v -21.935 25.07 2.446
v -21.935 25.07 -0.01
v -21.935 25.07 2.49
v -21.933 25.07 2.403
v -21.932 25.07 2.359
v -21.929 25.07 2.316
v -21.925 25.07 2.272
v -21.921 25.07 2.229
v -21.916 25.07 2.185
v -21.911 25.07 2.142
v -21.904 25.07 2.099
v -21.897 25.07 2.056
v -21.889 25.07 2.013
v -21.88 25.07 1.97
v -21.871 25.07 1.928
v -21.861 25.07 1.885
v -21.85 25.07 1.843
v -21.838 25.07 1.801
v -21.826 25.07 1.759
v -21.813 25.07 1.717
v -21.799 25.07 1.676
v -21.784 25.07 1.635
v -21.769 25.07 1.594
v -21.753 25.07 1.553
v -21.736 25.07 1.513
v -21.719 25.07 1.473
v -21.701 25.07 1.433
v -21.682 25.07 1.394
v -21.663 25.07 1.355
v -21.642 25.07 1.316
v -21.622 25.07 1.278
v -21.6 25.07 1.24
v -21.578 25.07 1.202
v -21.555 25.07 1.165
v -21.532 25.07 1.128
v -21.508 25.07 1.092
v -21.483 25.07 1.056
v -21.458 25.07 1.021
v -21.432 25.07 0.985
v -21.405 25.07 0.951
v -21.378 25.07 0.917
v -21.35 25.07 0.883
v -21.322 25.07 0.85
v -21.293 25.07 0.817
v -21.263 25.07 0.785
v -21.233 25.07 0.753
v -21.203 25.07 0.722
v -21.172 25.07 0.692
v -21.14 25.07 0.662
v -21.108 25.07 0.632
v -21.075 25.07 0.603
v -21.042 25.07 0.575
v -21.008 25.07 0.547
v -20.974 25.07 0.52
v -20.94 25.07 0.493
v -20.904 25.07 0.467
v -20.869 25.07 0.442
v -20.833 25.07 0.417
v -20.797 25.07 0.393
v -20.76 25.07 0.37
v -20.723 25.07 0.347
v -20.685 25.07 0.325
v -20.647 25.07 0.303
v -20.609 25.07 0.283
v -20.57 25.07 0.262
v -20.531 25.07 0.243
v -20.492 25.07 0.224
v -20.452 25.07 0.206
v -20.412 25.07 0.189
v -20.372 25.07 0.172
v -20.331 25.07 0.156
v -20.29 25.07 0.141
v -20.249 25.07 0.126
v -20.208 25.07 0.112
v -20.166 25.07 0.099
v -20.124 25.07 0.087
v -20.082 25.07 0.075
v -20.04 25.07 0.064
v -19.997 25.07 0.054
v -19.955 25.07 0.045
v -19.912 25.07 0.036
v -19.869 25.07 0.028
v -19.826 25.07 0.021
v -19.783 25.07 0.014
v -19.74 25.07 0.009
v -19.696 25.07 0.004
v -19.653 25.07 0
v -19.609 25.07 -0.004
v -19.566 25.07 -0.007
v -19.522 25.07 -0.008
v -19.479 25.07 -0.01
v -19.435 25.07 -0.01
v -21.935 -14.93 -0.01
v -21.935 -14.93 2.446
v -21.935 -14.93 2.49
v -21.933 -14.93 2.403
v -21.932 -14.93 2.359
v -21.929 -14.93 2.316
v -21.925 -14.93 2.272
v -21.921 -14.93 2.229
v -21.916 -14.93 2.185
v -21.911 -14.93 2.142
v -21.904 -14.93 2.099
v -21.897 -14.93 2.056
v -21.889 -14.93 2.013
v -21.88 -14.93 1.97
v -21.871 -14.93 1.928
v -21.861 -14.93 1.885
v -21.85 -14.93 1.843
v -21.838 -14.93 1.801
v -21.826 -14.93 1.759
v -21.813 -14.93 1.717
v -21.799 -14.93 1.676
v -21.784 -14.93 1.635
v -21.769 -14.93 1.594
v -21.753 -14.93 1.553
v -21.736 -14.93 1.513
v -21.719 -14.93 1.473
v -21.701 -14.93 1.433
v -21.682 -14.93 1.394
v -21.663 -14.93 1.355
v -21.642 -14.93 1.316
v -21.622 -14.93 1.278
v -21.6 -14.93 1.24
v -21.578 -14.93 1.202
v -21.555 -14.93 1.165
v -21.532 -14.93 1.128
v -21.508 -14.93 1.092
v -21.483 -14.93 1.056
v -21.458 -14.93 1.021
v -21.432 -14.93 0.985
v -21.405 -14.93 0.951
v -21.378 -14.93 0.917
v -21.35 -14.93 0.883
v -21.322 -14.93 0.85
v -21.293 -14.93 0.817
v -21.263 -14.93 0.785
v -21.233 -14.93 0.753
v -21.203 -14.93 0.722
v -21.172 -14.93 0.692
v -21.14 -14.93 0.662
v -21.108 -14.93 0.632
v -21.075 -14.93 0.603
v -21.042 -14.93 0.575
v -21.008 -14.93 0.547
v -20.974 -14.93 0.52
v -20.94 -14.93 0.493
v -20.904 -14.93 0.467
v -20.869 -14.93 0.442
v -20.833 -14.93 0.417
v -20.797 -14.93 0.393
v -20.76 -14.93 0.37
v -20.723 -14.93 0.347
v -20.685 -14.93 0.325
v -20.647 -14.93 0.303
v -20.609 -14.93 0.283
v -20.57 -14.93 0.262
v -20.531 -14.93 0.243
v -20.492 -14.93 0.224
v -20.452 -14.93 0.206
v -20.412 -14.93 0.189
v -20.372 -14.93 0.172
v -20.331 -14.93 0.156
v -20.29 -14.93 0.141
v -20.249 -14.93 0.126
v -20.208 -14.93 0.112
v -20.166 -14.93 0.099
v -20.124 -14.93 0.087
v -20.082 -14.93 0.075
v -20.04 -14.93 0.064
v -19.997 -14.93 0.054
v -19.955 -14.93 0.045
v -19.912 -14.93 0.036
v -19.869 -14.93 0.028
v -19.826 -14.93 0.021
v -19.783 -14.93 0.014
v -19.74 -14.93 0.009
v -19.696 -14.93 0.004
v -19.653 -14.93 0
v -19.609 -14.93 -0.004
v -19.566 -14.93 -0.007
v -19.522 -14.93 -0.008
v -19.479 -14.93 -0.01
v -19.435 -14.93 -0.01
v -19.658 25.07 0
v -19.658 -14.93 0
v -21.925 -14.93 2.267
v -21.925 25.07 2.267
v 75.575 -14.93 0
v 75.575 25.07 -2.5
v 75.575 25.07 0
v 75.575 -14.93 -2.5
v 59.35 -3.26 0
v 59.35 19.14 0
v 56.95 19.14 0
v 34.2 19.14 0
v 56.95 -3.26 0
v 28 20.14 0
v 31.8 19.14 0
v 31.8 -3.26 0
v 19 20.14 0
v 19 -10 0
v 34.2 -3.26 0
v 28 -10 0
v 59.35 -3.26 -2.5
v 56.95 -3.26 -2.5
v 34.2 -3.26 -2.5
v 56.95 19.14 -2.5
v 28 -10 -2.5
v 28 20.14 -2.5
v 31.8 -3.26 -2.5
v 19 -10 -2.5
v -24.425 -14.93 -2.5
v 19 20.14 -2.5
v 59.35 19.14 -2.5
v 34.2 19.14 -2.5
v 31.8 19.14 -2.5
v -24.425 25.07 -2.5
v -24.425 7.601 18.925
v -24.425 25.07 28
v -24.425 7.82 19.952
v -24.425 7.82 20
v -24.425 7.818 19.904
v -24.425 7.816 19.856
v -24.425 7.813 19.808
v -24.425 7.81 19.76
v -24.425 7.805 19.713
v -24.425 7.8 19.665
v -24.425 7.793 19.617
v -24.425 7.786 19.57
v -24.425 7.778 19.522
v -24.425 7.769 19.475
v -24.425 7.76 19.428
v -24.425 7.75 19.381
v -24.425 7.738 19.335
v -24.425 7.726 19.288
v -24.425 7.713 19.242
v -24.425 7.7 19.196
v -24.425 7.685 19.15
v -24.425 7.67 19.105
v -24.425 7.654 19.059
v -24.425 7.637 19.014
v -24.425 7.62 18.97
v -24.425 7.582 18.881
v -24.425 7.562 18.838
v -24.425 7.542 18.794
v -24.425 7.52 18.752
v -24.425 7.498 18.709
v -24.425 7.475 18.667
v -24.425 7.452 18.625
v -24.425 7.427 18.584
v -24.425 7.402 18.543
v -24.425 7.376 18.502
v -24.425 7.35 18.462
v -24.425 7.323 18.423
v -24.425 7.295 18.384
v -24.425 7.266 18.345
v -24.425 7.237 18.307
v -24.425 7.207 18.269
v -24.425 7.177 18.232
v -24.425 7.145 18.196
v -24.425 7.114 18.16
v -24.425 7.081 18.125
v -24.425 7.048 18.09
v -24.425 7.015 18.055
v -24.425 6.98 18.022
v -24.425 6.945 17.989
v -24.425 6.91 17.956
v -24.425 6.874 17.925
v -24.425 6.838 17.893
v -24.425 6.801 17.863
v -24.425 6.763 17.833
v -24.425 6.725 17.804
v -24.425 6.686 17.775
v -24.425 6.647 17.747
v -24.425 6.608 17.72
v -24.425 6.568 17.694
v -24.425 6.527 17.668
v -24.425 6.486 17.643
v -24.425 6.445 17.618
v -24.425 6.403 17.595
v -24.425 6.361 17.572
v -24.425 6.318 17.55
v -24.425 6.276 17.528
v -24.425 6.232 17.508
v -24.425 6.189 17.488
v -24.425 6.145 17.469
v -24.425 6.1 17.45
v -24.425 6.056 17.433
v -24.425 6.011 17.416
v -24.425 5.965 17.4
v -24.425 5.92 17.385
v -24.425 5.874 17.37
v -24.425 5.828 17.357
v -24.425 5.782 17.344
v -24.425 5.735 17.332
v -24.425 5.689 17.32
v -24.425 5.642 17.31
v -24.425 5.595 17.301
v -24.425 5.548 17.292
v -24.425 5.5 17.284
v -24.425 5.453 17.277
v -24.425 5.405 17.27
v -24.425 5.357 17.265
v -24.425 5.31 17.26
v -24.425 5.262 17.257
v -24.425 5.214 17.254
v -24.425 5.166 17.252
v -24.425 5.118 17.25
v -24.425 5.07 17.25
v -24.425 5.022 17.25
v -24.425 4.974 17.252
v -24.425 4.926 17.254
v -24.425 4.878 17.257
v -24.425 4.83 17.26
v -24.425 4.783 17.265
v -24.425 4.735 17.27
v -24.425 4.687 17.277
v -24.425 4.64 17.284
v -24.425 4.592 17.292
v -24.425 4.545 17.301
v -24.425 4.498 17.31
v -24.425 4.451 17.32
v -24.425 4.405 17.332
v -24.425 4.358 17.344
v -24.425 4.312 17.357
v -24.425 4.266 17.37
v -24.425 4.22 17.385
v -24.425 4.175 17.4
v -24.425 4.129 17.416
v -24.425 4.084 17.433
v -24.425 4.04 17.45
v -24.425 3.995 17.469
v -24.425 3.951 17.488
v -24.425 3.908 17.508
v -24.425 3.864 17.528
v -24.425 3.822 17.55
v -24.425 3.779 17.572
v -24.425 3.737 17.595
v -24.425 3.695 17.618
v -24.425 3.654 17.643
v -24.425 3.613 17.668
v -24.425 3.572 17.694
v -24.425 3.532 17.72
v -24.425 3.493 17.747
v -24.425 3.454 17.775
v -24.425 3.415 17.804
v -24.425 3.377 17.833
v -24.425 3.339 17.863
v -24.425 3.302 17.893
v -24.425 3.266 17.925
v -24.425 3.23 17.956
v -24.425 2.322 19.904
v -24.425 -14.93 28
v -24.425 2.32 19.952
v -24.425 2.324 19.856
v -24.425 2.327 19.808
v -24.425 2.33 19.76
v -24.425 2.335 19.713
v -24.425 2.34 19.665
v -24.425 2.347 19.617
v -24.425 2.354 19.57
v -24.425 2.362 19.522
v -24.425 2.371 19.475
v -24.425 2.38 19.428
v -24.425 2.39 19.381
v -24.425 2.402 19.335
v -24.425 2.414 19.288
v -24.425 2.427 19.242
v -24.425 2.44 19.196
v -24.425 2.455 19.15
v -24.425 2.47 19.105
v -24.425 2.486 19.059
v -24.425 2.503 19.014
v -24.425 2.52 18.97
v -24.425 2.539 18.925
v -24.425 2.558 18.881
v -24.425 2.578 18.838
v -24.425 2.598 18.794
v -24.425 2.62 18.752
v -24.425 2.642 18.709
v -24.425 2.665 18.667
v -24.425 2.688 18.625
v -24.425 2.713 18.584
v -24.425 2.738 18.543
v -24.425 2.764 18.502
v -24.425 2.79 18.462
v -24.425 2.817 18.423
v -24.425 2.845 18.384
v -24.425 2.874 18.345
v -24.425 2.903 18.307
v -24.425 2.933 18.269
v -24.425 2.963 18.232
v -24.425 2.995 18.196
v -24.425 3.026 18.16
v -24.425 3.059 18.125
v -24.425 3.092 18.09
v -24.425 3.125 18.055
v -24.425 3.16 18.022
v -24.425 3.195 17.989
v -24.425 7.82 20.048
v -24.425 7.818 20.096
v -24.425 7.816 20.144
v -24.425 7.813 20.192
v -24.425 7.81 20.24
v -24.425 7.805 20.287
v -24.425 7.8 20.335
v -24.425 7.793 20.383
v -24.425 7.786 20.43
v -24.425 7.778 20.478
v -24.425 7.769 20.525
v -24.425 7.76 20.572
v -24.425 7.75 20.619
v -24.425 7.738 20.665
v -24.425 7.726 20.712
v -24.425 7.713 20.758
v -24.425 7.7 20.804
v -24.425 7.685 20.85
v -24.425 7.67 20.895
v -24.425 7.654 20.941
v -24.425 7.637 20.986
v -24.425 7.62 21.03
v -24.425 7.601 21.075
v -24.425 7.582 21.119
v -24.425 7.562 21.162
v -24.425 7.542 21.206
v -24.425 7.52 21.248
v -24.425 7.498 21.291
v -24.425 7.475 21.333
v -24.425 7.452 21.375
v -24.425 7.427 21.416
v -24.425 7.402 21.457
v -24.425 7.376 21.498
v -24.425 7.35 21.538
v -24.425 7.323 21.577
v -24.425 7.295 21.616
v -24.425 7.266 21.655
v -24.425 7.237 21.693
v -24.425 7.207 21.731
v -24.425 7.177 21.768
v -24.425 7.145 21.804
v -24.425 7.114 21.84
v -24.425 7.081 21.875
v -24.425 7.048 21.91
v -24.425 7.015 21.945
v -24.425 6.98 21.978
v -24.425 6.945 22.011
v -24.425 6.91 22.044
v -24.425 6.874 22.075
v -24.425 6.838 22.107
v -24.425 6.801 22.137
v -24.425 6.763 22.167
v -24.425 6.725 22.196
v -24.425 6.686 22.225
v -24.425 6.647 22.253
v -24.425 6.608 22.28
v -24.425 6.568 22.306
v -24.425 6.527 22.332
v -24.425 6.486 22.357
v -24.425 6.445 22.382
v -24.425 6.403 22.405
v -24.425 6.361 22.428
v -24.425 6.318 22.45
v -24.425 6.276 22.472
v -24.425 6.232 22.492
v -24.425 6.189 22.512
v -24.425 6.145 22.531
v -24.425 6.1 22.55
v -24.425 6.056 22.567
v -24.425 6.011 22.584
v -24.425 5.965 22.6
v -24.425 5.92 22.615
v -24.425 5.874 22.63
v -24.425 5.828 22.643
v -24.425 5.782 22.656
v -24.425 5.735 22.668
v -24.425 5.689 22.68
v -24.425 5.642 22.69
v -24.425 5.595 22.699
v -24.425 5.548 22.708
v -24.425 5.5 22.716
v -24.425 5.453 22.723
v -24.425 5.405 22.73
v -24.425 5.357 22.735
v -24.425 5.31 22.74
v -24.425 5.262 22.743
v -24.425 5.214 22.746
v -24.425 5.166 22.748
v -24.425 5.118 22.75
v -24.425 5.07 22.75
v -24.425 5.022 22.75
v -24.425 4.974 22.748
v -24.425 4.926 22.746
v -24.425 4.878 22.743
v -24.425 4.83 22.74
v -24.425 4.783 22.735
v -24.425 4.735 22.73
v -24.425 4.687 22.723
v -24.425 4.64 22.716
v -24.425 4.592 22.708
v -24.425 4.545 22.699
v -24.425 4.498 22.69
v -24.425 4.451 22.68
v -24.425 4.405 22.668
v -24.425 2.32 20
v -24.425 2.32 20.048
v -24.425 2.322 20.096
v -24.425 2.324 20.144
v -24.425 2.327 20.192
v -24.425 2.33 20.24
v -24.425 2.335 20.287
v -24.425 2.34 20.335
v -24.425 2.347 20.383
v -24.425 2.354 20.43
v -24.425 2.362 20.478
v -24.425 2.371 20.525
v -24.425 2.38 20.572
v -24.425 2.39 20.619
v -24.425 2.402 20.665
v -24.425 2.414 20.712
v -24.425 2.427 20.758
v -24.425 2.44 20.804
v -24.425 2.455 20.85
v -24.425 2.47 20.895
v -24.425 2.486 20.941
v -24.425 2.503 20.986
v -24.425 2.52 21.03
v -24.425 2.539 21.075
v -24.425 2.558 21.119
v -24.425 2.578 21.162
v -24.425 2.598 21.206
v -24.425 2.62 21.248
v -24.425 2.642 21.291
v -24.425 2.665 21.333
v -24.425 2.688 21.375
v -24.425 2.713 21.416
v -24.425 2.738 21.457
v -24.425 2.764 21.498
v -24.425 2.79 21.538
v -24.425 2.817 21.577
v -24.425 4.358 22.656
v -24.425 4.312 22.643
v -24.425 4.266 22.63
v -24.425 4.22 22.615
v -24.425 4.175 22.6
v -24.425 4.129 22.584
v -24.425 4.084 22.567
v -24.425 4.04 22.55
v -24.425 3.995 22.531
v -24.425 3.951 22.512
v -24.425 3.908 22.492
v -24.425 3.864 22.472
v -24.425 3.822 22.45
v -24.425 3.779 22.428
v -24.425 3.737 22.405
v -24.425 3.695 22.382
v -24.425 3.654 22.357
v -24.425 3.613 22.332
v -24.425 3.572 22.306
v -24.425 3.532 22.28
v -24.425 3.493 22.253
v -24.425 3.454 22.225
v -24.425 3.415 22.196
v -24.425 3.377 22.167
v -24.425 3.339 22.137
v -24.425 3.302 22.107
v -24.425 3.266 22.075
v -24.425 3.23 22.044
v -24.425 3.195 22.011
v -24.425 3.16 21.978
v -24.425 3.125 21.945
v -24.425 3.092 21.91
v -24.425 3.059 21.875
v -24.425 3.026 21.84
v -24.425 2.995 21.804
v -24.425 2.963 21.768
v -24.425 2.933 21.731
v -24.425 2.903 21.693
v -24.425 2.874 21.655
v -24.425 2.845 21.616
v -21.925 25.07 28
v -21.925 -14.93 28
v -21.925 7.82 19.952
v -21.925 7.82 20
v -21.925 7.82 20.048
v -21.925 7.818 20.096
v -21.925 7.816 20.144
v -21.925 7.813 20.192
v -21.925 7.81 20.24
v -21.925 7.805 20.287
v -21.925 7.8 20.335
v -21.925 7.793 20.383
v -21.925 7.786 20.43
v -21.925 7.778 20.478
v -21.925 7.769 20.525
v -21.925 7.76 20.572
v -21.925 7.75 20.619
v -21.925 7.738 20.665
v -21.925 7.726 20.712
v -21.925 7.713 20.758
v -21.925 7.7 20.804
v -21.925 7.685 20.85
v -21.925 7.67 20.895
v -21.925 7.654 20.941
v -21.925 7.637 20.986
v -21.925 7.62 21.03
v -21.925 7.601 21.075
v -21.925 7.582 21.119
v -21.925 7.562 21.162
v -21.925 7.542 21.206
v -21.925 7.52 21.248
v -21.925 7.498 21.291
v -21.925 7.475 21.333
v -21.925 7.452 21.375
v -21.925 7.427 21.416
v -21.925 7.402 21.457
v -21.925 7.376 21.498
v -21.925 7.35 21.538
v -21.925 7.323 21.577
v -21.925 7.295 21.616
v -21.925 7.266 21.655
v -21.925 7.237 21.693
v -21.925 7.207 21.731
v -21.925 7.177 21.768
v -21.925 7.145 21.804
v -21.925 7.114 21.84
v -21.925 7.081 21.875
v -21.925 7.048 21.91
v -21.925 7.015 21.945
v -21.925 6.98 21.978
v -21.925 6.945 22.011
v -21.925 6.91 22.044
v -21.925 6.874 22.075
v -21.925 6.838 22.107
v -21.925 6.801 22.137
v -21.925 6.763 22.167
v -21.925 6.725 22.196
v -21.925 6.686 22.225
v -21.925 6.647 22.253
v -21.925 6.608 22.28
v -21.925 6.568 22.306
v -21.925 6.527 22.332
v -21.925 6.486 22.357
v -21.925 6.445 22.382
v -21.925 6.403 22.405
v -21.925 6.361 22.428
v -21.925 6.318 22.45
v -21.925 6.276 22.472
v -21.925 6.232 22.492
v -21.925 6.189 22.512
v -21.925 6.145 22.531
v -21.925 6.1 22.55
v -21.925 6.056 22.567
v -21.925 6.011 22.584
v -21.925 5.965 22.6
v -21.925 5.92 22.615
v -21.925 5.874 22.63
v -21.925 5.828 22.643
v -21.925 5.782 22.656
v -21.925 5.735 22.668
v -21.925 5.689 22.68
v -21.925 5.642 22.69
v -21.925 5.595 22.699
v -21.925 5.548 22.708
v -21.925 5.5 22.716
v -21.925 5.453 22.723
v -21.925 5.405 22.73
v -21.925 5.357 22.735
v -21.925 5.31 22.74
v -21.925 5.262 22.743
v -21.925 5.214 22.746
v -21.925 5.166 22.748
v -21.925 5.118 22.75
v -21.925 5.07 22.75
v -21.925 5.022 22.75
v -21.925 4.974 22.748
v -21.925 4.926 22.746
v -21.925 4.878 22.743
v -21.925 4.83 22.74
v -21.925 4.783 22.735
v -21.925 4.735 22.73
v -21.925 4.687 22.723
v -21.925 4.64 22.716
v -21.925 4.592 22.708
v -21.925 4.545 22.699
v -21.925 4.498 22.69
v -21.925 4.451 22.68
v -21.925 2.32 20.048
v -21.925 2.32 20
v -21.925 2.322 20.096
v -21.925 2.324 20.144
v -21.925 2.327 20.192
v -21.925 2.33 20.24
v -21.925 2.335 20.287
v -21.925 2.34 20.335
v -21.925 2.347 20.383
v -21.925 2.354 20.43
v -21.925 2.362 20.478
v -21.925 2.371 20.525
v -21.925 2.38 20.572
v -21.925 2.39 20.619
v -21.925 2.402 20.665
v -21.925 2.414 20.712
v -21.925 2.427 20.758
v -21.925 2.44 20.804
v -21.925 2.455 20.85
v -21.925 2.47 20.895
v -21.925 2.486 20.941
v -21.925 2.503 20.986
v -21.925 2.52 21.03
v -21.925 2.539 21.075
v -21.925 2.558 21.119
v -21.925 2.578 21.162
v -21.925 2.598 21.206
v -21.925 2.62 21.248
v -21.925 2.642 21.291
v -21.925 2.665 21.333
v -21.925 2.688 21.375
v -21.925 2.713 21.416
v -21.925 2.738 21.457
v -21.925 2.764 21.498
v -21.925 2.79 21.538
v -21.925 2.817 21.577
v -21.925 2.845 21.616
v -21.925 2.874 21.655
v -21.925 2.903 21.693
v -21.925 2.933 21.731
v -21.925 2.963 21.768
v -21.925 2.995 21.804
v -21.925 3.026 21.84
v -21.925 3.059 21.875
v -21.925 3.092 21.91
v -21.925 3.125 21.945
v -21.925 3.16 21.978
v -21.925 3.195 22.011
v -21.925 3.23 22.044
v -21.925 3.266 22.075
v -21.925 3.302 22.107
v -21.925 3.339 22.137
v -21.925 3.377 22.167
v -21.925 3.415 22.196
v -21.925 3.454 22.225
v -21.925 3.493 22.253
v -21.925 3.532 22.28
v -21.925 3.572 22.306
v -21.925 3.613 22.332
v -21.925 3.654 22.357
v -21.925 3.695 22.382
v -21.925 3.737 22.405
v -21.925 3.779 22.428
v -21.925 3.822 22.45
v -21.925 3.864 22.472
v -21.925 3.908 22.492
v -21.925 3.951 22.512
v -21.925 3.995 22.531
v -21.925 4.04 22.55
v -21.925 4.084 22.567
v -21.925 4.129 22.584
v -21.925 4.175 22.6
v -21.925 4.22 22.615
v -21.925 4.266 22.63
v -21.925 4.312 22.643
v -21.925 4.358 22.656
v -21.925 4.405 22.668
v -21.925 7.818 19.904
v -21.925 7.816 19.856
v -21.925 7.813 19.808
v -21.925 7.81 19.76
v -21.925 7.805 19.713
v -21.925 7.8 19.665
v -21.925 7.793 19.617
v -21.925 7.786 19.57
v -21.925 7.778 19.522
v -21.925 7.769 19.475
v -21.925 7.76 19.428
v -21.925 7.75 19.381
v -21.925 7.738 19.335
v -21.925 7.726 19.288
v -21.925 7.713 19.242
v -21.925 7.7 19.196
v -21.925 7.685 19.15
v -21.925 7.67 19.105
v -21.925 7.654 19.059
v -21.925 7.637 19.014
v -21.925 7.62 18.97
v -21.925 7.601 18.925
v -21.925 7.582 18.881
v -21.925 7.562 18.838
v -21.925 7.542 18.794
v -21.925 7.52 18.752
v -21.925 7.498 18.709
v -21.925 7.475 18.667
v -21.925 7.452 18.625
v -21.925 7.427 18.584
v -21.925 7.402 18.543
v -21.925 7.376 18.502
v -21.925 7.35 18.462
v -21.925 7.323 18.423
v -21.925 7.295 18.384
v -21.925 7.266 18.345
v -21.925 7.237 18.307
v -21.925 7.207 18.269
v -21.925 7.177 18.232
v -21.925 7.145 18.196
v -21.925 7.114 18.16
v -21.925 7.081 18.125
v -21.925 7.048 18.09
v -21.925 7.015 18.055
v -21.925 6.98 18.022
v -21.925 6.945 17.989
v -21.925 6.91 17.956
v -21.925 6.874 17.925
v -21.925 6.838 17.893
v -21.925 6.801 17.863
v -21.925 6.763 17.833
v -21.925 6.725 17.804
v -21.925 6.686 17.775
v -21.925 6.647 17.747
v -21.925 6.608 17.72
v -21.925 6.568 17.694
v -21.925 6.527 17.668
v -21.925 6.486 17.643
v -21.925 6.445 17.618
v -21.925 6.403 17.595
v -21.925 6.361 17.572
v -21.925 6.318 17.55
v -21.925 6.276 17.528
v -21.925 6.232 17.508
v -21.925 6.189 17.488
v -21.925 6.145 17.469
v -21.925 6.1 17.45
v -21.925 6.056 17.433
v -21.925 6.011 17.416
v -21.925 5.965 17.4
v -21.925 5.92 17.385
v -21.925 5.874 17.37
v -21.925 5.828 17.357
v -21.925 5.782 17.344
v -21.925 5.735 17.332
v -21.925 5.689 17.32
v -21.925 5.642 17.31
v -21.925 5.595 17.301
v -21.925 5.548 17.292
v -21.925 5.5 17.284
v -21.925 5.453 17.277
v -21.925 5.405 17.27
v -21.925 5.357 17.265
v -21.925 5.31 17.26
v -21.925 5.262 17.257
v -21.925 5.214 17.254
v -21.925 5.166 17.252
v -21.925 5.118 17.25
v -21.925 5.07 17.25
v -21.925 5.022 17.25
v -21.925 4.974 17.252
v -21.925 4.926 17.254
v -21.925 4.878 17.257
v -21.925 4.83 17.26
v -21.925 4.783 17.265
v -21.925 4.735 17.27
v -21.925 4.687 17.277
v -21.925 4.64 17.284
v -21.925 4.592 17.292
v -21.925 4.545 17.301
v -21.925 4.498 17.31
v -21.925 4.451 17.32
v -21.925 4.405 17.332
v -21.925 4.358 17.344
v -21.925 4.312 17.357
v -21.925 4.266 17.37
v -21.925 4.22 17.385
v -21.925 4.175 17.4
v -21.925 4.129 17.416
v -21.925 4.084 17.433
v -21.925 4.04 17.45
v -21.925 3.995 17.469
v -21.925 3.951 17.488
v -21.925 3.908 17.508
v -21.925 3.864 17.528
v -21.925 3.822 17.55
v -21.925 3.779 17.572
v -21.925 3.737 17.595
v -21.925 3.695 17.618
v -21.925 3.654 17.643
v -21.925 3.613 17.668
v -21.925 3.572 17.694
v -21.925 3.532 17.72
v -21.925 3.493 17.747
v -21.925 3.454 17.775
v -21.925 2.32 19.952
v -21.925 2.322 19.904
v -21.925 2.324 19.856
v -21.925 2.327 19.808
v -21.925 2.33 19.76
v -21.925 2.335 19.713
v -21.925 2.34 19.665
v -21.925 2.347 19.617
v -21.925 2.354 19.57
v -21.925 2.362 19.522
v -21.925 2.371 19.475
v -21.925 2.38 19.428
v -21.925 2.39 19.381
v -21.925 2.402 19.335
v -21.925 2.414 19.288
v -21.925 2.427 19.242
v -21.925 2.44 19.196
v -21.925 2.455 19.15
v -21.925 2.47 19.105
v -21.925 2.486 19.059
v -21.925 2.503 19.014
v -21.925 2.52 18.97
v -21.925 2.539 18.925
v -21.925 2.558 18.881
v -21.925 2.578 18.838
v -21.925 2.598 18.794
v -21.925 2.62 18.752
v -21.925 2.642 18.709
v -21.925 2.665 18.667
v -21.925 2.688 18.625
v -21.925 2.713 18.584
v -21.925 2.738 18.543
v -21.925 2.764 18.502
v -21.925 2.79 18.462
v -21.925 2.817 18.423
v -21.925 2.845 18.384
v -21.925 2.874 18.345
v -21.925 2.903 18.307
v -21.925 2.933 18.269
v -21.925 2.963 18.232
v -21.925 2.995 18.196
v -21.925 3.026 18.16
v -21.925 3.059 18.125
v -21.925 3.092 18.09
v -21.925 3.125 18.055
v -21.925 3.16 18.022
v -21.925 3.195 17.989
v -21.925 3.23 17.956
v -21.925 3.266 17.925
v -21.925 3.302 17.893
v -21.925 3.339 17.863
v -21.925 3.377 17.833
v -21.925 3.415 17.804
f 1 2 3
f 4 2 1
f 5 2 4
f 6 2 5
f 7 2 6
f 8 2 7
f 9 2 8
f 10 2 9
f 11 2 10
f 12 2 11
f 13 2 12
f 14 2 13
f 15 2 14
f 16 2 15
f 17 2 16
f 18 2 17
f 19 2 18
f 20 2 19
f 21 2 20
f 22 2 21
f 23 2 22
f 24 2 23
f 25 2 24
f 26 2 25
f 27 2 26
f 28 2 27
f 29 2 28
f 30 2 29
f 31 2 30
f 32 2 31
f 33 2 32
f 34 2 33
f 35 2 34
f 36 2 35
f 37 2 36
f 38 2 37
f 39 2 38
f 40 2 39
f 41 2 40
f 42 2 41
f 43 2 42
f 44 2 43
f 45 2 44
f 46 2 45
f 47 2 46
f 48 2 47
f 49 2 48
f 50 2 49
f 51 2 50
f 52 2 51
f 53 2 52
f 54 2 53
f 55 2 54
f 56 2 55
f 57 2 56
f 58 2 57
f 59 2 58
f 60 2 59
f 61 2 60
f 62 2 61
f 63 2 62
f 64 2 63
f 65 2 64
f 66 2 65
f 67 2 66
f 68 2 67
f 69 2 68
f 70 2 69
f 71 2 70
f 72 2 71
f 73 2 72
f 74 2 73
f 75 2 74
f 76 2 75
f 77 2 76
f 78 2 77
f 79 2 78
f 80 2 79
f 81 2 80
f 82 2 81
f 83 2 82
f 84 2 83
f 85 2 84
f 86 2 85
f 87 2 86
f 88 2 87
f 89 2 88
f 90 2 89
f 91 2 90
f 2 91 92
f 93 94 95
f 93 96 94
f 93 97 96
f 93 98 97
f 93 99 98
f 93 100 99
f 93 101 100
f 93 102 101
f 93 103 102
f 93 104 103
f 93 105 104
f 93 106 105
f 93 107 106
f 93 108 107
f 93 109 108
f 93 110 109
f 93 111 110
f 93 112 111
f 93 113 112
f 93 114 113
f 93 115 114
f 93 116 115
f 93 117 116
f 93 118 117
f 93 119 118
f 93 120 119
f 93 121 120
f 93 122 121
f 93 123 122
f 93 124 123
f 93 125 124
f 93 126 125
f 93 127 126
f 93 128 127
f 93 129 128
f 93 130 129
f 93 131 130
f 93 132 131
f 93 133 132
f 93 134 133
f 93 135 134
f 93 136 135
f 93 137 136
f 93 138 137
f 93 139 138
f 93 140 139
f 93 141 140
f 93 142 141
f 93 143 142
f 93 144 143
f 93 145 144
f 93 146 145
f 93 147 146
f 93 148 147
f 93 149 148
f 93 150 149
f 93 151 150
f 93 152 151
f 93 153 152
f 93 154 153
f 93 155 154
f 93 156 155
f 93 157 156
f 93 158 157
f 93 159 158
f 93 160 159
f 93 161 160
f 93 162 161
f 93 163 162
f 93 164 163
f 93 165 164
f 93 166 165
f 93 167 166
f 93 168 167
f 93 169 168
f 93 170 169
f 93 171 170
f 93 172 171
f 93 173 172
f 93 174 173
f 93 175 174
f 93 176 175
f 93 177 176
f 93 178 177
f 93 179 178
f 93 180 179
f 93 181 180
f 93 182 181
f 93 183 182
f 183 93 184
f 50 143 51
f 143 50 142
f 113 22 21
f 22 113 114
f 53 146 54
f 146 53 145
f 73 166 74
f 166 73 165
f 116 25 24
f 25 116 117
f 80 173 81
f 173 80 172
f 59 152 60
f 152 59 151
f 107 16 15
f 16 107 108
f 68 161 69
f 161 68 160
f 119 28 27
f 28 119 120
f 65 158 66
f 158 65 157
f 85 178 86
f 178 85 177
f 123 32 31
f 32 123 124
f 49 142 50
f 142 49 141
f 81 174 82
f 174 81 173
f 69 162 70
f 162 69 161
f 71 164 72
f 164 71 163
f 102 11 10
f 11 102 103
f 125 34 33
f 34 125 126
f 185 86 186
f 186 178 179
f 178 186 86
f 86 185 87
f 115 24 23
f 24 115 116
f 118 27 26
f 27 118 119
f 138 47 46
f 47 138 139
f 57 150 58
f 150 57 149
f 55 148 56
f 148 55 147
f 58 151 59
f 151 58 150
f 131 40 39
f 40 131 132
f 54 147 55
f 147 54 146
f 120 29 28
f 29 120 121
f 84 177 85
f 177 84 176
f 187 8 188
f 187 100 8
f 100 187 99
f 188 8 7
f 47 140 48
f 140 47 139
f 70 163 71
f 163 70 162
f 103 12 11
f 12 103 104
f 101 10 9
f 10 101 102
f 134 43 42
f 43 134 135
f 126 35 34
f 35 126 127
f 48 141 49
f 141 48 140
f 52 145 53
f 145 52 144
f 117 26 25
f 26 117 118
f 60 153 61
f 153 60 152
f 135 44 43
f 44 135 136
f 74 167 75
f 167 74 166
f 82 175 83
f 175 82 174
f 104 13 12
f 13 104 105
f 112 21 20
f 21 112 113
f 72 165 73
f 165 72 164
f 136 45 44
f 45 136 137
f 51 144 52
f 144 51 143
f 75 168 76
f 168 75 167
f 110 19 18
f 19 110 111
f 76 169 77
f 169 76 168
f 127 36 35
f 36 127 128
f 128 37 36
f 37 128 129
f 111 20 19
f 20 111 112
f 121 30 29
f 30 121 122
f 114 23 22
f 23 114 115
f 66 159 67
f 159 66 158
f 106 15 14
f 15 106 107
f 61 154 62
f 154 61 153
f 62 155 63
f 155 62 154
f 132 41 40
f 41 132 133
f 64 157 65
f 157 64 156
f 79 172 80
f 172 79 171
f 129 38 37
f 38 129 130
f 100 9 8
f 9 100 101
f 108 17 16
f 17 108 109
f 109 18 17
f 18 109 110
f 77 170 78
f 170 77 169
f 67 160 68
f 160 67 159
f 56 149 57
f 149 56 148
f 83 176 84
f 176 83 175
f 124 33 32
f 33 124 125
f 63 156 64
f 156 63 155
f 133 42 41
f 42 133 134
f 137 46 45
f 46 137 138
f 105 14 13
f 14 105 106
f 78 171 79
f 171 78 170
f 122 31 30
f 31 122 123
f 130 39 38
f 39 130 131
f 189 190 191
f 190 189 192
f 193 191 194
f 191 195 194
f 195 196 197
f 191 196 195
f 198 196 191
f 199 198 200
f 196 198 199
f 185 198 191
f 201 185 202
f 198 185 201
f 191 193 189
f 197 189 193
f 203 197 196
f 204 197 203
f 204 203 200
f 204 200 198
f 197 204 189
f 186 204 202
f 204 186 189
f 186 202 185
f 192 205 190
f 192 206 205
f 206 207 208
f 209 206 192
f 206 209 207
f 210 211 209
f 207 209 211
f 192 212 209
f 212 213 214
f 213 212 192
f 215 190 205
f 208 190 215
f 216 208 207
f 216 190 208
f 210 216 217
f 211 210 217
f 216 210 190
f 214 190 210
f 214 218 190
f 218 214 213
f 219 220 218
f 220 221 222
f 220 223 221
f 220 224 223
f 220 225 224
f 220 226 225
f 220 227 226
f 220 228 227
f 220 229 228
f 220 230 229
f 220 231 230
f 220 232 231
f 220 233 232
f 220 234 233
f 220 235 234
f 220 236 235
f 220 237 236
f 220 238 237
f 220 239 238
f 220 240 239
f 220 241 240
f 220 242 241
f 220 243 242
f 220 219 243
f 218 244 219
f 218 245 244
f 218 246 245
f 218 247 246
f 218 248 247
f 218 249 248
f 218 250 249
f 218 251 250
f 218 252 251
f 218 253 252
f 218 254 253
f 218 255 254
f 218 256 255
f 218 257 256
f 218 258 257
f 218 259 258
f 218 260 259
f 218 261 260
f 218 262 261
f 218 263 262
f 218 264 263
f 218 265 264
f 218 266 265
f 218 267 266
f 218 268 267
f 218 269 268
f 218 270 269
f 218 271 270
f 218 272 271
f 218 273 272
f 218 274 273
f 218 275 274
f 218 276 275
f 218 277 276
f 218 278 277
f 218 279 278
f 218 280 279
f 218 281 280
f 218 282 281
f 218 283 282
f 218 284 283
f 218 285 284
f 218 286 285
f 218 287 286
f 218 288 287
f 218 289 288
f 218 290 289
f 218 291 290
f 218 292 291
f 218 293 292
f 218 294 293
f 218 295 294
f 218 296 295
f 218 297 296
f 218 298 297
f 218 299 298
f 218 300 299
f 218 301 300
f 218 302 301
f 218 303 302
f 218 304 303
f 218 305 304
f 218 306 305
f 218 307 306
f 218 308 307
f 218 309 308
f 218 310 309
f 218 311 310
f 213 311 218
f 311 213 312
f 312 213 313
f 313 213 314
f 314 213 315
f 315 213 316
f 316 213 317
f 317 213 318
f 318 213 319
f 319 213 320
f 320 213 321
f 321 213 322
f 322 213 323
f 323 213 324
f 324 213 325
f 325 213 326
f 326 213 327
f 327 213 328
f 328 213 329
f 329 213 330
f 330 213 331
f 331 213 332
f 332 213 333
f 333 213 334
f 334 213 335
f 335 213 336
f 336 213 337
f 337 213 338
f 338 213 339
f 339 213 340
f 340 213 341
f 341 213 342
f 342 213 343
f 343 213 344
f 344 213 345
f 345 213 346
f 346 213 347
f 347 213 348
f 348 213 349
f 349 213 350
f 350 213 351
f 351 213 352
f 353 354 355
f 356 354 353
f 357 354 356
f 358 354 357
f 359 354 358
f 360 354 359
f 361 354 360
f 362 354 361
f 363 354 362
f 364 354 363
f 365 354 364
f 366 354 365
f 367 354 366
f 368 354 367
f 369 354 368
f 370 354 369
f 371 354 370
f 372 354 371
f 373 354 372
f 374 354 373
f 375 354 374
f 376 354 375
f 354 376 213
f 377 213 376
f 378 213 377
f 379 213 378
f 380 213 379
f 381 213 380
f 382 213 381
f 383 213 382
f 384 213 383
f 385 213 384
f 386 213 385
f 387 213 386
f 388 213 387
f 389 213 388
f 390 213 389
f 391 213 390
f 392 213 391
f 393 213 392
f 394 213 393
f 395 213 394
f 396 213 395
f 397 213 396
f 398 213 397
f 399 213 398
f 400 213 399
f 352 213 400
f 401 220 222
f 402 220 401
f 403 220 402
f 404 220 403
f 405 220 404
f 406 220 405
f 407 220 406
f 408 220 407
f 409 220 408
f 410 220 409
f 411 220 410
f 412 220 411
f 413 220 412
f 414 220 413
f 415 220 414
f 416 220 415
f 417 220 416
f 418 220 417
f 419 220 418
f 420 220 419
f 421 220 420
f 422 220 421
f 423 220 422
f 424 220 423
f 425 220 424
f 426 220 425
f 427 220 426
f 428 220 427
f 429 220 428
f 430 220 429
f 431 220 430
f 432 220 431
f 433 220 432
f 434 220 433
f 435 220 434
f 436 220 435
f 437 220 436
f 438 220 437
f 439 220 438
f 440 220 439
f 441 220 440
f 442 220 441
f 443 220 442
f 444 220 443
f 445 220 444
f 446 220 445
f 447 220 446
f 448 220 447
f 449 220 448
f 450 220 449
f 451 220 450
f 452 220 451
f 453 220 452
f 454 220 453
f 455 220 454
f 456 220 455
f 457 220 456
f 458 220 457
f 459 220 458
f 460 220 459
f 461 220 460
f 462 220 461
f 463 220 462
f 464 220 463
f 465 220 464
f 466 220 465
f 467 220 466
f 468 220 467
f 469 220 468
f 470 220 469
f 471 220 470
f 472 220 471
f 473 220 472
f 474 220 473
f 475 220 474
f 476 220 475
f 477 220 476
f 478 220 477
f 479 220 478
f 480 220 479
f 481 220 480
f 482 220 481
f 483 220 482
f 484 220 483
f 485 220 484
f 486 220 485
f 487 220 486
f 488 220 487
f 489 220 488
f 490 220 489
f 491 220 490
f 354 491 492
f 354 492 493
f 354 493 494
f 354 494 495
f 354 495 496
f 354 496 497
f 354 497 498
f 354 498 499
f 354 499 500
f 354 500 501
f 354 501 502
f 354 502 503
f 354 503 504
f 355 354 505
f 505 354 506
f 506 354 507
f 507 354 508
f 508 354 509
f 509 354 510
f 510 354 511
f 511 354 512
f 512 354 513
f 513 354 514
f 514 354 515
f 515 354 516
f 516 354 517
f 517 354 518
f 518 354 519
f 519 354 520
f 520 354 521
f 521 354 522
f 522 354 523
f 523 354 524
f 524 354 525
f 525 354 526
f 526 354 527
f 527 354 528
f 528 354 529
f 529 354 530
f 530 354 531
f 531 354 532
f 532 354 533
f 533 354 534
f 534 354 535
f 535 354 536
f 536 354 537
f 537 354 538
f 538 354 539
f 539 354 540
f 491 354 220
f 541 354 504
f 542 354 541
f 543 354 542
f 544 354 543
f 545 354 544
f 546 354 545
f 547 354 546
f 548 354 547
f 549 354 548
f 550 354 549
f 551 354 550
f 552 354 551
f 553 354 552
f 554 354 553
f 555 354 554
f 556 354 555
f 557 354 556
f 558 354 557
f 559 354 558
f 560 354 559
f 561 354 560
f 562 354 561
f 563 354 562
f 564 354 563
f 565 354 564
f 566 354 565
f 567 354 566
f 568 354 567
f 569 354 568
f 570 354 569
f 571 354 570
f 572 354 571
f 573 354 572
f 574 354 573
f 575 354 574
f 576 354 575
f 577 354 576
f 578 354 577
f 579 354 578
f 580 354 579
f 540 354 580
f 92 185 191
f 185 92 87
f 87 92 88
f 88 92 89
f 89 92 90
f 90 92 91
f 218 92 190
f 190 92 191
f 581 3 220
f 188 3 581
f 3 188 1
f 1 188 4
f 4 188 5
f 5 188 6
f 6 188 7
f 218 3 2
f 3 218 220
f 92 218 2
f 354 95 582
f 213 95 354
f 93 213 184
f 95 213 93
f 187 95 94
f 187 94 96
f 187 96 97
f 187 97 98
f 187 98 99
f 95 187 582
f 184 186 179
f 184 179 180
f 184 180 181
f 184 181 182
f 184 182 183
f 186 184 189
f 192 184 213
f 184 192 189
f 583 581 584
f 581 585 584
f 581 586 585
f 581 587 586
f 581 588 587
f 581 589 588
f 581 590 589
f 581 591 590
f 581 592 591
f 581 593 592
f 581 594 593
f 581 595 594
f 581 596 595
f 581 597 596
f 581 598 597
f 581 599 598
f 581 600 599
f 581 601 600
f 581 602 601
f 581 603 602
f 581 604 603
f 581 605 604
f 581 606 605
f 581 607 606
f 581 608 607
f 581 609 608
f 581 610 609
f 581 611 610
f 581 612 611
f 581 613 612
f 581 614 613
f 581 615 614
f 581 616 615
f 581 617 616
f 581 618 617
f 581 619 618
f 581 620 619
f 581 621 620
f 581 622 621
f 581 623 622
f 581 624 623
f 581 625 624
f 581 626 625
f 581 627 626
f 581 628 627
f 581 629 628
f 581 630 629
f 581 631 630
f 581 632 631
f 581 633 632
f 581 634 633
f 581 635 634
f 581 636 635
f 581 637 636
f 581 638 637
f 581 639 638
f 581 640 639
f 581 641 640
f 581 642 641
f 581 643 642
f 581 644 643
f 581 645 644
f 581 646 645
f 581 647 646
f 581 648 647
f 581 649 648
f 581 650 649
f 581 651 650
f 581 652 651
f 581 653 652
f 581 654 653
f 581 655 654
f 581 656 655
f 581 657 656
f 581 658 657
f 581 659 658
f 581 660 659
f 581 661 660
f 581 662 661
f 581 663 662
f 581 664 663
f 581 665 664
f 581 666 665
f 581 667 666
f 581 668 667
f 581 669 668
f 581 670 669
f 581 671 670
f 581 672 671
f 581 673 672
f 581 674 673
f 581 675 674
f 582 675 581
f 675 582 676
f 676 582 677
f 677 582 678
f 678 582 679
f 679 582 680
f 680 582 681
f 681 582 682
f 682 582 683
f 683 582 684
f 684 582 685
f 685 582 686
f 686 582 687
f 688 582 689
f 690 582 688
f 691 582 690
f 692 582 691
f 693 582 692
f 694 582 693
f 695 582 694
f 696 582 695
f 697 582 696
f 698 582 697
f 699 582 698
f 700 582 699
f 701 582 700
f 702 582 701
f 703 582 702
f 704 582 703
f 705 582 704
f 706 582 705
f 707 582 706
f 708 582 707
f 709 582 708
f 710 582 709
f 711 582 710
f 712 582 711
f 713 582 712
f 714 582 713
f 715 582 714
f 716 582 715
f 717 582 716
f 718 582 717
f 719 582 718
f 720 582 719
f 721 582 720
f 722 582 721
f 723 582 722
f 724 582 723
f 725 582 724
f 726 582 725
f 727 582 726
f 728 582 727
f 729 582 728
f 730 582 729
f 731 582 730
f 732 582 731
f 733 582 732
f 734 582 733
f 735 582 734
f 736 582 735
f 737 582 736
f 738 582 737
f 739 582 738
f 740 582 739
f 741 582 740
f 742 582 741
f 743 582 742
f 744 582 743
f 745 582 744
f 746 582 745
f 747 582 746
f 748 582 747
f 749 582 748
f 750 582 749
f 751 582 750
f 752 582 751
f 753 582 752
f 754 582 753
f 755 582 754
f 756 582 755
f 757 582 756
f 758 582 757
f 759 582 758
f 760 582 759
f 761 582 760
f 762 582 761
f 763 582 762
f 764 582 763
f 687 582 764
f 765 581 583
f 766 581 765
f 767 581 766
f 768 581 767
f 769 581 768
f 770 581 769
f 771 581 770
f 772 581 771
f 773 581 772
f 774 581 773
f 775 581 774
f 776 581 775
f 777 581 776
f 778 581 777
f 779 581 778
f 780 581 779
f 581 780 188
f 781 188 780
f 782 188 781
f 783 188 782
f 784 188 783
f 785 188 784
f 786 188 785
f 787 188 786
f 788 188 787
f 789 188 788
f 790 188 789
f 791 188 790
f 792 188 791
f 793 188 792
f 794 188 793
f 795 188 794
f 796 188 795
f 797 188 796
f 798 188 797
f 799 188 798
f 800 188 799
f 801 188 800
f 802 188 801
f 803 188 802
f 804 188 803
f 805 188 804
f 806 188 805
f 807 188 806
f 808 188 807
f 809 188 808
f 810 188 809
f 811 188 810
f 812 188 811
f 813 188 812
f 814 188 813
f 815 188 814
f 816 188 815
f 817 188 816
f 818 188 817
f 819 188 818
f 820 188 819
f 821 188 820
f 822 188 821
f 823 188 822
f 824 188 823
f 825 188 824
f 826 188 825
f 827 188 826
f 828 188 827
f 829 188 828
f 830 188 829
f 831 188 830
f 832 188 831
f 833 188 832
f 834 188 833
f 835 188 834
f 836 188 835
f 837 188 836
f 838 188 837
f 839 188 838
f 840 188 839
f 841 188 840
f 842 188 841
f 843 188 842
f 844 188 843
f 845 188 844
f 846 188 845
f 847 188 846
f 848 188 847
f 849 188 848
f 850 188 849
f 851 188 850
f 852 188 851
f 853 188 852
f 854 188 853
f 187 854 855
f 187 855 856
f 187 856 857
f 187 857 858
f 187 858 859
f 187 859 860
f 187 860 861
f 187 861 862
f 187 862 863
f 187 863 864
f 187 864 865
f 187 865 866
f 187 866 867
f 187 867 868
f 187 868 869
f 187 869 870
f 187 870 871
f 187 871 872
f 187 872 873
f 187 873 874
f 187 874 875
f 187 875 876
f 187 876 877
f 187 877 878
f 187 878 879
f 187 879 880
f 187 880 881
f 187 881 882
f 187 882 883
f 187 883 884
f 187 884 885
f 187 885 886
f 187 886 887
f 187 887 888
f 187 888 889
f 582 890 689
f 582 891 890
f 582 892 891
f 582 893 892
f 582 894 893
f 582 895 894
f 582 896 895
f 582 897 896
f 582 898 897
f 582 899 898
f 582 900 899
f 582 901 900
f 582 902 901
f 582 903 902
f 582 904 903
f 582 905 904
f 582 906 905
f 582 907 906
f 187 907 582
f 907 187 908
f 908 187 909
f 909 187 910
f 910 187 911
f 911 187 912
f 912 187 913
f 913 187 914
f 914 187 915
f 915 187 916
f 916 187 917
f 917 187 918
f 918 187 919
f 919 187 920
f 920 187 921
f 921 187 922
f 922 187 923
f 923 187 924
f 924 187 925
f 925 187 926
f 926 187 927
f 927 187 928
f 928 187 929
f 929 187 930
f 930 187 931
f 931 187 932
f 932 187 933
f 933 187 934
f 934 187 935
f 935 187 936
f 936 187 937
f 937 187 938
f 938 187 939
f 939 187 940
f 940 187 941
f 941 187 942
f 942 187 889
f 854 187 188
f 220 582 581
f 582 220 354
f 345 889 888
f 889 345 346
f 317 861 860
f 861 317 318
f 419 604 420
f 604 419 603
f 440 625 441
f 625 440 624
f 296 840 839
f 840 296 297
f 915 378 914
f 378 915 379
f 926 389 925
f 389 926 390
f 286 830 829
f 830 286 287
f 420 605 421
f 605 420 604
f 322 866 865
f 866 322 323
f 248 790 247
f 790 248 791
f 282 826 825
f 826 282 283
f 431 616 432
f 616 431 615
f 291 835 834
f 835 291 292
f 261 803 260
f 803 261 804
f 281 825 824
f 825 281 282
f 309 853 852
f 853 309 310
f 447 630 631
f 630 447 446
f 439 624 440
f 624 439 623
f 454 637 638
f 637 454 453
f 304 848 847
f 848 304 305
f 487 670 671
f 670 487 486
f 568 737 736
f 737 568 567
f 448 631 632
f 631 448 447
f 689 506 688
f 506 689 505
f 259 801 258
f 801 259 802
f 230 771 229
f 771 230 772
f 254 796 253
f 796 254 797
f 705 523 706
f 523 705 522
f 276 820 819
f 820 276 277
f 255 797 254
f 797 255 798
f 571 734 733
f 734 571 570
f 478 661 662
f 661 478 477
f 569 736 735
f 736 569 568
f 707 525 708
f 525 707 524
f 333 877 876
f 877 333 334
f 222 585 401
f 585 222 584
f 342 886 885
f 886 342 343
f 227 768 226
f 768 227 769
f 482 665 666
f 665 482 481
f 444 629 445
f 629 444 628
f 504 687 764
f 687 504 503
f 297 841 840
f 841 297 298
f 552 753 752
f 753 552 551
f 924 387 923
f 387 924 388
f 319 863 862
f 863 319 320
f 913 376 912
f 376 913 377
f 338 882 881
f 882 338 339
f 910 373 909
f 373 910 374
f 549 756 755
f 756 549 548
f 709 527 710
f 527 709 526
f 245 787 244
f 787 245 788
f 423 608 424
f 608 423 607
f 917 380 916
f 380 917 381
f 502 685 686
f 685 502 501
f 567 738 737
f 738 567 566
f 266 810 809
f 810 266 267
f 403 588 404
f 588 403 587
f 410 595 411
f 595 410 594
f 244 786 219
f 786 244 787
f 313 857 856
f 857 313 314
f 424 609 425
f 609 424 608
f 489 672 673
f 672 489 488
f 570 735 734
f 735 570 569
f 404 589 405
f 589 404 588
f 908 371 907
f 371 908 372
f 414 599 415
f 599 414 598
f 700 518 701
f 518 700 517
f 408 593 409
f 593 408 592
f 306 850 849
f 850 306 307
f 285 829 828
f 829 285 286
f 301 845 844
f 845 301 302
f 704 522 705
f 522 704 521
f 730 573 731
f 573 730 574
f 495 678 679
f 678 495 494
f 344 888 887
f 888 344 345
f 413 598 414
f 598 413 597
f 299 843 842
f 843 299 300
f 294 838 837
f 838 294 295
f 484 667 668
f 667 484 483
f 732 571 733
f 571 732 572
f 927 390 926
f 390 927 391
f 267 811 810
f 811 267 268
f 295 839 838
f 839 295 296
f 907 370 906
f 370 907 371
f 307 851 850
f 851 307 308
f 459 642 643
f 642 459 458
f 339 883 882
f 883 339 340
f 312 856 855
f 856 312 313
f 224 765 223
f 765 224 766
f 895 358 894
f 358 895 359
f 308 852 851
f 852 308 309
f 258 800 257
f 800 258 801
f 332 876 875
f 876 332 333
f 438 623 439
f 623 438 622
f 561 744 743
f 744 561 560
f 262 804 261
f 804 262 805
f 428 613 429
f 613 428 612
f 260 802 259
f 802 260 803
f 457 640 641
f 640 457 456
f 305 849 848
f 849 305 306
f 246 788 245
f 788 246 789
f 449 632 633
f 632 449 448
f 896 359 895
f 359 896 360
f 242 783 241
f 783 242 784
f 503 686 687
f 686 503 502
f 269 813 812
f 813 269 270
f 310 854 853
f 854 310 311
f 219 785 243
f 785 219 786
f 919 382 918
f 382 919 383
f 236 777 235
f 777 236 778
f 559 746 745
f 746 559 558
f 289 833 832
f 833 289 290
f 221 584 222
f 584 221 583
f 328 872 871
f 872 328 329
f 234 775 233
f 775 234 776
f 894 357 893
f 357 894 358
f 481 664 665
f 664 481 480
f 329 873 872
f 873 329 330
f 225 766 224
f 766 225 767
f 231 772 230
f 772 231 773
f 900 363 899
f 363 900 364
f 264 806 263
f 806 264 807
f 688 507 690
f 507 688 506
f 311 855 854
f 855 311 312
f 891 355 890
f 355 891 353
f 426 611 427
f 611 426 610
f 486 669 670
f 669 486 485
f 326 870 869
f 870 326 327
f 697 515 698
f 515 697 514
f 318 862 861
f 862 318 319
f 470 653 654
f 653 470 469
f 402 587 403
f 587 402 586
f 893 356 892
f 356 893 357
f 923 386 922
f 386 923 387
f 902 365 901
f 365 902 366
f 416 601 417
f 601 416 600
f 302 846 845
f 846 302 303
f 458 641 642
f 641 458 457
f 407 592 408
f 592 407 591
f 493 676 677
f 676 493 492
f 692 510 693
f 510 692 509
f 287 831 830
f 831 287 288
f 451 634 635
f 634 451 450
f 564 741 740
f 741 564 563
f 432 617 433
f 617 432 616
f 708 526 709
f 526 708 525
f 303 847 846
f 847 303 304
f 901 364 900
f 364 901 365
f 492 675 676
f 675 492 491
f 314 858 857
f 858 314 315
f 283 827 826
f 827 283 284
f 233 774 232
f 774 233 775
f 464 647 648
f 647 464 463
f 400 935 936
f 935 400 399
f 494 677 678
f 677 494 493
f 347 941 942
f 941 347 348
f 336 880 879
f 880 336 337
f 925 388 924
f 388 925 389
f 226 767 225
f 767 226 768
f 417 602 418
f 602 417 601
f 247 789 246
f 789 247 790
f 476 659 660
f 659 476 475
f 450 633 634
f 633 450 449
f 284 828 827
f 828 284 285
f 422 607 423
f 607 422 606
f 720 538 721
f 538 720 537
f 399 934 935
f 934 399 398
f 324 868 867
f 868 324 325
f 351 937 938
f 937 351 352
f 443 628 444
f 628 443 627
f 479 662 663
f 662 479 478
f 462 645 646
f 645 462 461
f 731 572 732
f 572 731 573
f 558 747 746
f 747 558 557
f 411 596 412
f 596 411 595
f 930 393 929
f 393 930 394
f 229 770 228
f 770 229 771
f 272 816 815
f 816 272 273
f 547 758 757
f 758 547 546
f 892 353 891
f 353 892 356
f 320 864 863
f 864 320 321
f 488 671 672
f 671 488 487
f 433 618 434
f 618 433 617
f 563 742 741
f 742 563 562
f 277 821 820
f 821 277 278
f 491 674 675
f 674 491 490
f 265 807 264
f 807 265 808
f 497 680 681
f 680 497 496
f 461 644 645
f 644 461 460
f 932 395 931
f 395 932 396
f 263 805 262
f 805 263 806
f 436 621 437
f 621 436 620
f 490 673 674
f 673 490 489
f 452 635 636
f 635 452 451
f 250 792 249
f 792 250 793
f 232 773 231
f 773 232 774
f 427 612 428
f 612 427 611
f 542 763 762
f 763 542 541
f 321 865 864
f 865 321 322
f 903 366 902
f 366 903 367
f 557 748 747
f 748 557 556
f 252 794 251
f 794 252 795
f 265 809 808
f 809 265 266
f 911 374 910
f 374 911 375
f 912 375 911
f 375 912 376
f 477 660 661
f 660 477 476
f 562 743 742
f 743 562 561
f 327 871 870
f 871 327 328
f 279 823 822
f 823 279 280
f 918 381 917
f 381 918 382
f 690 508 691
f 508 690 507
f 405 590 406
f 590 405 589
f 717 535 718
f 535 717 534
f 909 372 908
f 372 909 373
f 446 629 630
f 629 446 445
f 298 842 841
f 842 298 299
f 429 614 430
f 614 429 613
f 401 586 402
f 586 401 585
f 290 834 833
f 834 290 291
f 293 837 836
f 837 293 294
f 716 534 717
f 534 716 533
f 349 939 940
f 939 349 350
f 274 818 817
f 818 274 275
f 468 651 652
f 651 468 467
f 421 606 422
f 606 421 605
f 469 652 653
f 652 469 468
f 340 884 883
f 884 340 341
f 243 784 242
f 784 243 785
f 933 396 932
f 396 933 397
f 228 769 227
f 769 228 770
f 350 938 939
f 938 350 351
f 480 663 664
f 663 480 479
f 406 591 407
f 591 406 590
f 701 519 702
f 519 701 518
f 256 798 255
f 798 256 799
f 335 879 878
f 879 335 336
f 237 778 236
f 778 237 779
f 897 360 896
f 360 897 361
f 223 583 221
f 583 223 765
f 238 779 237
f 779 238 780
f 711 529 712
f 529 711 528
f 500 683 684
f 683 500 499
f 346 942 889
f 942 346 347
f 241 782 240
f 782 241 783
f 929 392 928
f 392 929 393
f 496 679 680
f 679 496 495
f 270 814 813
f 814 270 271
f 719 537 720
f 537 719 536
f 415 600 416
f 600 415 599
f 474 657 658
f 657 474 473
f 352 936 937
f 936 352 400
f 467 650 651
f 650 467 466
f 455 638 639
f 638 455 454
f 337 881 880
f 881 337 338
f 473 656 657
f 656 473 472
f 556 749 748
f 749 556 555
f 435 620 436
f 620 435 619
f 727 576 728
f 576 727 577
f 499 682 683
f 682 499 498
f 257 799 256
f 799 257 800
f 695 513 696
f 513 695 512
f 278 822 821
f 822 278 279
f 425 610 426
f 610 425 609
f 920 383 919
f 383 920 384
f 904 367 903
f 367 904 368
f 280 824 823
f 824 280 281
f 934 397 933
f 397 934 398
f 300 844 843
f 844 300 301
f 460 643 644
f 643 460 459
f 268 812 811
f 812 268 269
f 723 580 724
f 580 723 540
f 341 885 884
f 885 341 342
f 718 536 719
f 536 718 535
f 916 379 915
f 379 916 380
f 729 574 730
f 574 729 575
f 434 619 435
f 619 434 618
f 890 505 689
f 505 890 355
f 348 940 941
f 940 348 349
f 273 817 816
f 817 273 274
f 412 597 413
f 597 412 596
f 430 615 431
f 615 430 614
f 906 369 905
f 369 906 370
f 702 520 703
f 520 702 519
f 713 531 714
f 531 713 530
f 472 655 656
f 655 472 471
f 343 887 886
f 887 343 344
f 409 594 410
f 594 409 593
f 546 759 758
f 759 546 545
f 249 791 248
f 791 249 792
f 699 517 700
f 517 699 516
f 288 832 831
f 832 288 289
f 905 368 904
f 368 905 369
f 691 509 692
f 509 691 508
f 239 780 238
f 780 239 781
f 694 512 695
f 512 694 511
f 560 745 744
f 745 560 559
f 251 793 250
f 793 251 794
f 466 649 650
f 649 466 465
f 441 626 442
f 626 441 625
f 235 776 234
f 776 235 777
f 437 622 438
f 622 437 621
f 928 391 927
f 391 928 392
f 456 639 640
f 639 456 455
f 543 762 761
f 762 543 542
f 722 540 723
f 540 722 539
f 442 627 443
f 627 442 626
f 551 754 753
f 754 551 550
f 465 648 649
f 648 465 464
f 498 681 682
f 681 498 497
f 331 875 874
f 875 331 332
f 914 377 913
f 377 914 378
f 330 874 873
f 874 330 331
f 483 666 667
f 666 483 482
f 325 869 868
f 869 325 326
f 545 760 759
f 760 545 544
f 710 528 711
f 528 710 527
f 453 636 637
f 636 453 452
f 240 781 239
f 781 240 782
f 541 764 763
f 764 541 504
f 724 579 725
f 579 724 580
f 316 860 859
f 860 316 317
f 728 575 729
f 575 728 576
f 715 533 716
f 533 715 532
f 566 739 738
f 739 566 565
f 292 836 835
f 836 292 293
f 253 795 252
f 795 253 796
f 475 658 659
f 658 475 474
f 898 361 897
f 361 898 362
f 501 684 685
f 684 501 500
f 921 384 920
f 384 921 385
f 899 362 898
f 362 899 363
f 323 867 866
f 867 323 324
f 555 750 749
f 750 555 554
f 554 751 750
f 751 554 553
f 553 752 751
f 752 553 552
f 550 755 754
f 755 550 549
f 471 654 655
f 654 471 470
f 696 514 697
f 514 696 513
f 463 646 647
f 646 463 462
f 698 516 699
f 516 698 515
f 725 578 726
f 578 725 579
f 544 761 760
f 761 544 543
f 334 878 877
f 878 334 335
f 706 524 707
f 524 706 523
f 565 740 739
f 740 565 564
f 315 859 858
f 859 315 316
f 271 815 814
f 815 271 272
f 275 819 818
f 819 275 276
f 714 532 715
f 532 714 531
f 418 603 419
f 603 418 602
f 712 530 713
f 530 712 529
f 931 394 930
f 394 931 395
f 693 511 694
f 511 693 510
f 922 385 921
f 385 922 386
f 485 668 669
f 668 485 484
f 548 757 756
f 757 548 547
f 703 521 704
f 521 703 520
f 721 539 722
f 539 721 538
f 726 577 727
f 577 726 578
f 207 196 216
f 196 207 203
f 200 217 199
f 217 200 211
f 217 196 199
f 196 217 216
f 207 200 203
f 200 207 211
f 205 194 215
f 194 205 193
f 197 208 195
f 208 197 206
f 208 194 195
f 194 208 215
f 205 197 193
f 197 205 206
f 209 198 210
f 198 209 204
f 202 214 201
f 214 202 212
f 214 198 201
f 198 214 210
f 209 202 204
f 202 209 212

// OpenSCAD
led_width = 10.14;
led_length = 51.15;
led_hole_dia = 2.4; // M2 screw normal fit H13
led_countersink_dia = 4.4; // M2 countersink
led_thickness = 1.65;
led_hole_inset_long_axis = 11.8 + (led_hole_dia / 2);
led_hole_inset_short_axis = 1 + (led_hole_dia / 2);
solder_pad_length = 6;

adjustability = 20;

leg_setback = 20;
leg_to_led = 20;
mounting_hole = 5.5;
leg_length = leg_setback + mounting_hole + 5;

plate_width = 40;
plate_length = 80 + leg_to_led;
plate_thickness = 2.5;

$fn = 360;

show_bar = false;

if(show_bar) {
    bar();
}
color("red") {
    plate();
}

module bar() {
    difference() {
        union() {
            color("green") {
                cube([led_length, led_width, led_thickness]);
            }
            color("gold") {
                translate([0, 0, -0.1]) {
                    cube([solder_pad_length, led_width, led_thickness + 0.2]);
                }
            }
        }
        // screw holes
        translate([led_hole_inset_long_axis, led_width - led_hole_inset_short_axis, -1 * led_thickness]) {
            cylinder(d=led_hole_dia, h=led_thickness * 2);
        }
        translate([led_length - led_hole_inset_long_axis, led_width - led_hole_inset_short_axis, -1 * led_thickness]) {
            cylinder(d=led_hole_dia, h=led_thickness * 2);
        }
    }
}

module plate() {
    difference() {
        union() {
            // LED mounting plate
            translate([-1 * (plate_length - led_length) / 2, -1 * (plate_width - led_width) / 2, -1 * plate_thickness]) {
                cube([plate_length, plate_width, plate_thickness]);
            }
            // gantry mounting leg
            translate([-1 * (plate_length - led_length) / 2, -1 * (plate_width - led_width) / 2, -1 * plate_thickness]) {
                cube([plate_thickness, plate_width, leg_length]);
            }
            // fillet
            translate([(-1 * (plate_length - led_length) / 2) + plate_thickness - 0.01, -1 * (plate_width - led_width) / 2, -0.01]) {
                fillet(plate_width, plate_thickness);
            }
        }
        // mounting hole
        translate([(-1 * (plate_length - led_length) / 2) - 4, (-1 * (plate_width - led_width) / 2) + (plate_width / 2), leg_setback]) {
            rotate([0, 90, 0]) {
                cylinder(d=mounting_hole, h=20);
            }
        }
        // LED screw holes
        translate([led_hole_inset_long_axis + leg_to_led, led_width - led_hole_inset_short_axis, -10]) {
            cube([led_hole_dia, led_hole_dia + adjustability, 20], center=true);
        }
        translate([led_length - led_hole_inset_long_axis + leg_to_led, led_width - led_hole_inset_short_axis, -10]) {
            cube([led_hole_dia, led_hole_dia + adjustability, 20], center=true);
        }
        // cutout for solder pads
        translate([-1 + leg_to_led, -1 * adjustability / 2, -5]) {
            cube([solder_pad_length + 3, led_width + adjustability, 10]);
        }
    }
}

module fillet(length, radius) {
    intersection() {
        difference() {
            cube([radius * 2, length, radius * 2]);
            translate([radius, 0, radius]) {
                rotate([-90, 0, 0]) {
                    cylinder(r=radius, h=length);
                }
            }
        }
        translate([0, 0, 0]) {
            cube([radius, length, radius]);
        }
    }
}
